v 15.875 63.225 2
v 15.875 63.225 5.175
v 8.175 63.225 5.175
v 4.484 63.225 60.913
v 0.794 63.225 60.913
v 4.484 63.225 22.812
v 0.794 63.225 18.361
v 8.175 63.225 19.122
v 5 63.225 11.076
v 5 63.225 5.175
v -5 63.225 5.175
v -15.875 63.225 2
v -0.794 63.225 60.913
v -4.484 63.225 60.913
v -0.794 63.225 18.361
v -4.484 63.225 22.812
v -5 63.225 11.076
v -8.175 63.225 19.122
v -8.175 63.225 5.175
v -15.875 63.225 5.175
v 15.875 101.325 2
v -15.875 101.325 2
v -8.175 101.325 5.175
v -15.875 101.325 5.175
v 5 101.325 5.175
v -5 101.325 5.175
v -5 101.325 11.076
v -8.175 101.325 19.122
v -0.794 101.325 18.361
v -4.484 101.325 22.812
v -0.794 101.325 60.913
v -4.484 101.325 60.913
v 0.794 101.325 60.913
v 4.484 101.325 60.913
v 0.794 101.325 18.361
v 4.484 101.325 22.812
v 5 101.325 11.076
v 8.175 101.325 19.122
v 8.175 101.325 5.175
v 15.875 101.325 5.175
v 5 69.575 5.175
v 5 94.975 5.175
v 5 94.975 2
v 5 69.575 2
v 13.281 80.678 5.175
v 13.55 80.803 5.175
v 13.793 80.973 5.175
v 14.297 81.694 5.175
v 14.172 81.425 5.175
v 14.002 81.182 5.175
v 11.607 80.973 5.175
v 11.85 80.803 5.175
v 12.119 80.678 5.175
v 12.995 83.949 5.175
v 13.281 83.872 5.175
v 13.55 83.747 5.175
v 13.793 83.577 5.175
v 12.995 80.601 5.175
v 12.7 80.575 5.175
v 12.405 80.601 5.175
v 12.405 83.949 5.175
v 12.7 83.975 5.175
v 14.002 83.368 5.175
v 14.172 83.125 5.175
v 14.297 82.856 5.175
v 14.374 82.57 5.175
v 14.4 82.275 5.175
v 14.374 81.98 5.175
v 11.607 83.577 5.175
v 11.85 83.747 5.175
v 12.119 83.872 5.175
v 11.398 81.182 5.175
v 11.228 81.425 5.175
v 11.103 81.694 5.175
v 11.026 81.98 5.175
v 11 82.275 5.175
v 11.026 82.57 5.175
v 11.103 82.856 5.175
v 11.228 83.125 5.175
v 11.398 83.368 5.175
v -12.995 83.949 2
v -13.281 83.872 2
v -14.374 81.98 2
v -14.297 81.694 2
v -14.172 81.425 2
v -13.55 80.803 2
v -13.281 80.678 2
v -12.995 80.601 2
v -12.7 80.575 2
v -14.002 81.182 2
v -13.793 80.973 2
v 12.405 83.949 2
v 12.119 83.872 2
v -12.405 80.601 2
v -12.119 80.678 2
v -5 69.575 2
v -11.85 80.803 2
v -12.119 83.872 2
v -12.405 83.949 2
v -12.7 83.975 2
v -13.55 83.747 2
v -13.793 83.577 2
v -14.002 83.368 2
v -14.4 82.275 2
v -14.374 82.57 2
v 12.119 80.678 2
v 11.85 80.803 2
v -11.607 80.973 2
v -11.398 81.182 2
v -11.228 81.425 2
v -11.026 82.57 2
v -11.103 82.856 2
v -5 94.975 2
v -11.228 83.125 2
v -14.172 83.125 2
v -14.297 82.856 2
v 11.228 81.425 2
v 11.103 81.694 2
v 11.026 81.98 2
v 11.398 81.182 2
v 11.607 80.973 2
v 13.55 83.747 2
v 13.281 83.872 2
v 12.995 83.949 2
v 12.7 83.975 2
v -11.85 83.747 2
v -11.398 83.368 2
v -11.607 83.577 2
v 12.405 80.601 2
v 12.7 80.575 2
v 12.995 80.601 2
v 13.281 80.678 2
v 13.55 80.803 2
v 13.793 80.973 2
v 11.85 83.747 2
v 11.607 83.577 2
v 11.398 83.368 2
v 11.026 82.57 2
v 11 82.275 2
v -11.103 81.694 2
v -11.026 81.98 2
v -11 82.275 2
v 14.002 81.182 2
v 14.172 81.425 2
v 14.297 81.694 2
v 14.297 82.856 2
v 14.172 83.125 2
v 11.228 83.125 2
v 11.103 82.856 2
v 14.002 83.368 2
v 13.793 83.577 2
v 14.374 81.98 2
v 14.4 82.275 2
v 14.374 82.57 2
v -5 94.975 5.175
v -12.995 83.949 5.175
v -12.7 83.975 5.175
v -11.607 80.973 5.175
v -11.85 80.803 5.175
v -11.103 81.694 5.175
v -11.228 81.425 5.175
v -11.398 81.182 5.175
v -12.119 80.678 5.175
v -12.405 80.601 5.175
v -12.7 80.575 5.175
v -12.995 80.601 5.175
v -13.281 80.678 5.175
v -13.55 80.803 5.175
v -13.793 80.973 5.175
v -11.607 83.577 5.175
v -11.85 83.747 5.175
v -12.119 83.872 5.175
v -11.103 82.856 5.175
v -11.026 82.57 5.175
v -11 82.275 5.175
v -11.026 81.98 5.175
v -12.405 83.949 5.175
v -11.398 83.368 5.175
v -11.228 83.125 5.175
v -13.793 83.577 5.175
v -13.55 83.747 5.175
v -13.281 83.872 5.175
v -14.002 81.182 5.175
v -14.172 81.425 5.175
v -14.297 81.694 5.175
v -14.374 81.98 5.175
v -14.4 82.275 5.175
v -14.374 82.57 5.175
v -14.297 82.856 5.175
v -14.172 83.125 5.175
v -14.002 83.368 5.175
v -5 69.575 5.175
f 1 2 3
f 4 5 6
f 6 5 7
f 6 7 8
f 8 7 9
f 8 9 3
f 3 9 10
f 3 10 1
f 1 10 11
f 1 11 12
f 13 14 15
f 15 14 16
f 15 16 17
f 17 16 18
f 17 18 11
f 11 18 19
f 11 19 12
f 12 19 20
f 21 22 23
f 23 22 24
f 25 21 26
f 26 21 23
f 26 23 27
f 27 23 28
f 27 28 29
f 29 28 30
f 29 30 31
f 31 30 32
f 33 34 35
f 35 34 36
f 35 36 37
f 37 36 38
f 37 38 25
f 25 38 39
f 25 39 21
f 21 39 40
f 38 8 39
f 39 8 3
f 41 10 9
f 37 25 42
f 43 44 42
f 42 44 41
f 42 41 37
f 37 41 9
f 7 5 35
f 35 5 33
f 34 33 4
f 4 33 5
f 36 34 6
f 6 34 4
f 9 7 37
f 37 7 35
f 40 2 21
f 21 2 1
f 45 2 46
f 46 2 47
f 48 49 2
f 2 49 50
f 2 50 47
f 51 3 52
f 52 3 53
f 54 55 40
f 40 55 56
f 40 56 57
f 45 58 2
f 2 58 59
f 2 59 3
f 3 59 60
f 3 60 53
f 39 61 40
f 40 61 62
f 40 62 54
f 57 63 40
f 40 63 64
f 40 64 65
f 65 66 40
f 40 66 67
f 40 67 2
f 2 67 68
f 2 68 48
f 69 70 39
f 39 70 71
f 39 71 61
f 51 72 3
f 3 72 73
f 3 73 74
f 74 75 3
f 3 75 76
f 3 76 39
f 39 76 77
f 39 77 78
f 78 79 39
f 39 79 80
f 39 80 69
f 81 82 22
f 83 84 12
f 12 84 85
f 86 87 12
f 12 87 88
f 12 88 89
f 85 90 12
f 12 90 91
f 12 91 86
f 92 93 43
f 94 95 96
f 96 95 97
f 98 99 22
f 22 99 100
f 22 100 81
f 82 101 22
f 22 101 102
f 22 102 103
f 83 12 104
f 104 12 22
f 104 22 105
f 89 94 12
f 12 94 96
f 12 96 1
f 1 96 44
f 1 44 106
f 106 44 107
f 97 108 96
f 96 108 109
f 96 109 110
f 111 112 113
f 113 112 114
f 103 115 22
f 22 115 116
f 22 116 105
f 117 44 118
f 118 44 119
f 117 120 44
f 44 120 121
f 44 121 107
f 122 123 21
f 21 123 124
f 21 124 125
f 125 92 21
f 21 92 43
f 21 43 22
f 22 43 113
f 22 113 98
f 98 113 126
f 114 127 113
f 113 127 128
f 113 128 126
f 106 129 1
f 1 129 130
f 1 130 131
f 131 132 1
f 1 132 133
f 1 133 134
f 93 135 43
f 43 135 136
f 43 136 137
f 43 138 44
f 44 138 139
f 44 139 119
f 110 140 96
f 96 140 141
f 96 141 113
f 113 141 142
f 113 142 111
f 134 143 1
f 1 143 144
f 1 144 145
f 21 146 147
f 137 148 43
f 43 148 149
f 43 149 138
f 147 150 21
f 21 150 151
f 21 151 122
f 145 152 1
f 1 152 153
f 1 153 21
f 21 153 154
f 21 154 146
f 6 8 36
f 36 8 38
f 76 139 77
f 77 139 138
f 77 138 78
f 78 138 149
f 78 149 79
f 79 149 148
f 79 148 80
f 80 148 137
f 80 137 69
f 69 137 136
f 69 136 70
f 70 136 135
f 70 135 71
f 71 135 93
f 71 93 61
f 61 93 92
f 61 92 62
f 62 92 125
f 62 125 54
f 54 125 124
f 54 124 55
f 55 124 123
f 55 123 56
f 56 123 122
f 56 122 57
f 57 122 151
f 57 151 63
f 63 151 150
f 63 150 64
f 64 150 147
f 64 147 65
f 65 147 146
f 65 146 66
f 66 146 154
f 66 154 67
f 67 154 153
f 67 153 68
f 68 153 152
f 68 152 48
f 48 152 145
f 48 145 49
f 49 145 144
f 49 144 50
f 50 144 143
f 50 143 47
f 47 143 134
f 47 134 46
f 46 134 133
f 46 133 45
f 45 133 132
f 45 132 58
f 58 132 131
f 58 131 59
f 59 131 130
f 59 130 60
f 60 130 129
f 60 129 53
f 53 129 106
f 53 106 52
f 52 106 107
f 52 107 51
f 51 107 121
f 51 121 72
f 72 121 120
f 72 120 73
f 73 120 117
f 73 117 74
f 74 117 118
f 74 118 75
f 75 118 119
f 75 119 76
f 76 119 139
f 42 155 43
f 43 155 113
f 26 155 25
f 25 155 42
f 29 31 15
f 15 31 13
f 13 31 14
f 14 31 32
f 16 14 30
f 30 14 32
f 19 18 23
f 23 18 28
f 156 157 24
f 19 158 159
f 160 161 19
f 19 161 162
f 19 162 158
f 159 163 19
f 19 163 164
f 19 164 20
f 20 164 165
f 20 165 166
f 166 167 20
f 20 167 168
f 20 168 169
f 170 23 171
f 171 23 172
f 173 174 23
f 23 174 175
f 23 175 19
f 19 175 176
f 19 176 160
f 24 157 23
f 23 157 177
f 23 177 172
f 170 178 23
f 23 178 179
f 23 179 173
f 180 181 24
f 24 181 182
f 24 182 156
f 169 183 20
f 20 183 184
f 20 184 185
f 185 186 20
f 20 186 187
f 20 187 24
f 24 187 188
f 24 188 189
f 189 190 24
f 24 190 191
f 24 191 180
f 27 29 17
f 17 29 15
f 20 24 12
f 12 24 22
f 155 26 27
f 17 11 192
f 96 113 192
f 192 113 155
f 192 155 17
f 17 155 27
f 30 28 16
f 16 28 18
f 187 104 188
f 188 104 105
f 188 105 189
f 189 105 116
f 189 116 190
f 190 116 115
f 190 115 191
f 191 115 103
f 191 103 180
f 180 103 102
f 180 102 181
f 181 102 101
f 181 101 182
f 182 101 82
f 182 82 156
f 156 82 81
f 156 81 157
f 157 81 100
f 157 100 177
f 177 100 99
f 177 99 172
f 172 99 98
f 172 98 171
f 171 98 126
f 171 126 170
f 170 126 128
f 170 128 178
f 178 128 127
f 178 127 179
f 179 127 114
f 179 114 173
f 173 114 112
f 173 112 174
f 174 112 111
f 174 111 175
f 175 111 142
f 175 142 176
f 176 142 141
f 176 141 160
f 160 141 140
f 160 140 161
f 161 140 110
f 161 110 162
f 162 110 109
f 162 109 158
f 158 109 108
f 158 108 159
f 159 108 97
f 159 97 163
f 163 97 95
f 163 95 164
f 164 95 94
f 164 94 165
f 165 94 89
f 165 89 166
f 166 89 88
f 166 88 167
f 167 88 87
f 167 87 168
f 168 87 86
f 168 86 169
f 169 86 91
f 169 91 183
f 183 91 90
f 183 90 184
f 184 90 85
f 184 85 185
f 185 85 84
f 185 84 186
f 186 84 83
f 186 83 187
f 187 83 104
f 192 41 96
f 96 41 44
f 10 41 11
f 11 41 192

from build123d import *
from build123d.topology import SkipClean

# Parameters (mm, degrees)
SKETCH1_W                     = 10
SKETCH1_H                     = 170.55
SKETCH1_R                     = 2.5
BOSS_EXTRUDE1_DEPTH           = 2
SKETCH2_W                     = 10
SKETCH2_H                     = 170.55
SKETCH2_R                     = 2.95
BOSS_EXTRUDE2_DEPTH           = 1
SKETCH3_W                     = 69.85
SKETCH3_H                     = 10.16
SKETCH3_R                     = 1.86055
BOSS_EXTRUDE3_DEPTH           = 2.5
FILLET1_START                 = -1
FILLET1_DEPTH                 = 10.16
FILLET1_START_2               = -17.7000001
FILLET1_2_DEPTH               = 35.4000001
FILLET1_START_3               = -5
FILLET1_3_DEPTH               = 10
SKETCH4_W                     = 10
SKETCH4_H                     = 13.05
BOSS_EXTRUDE4_DEPTH           = 3
SKETCH4_3_W                   = 3.175
SKETCH4_3_H                   = 38.1
BOSS_EXTRUDE5_DEPTH           = 11.1125
SKETCH5_W                     = 7.38125
SKETCH5_H                     = 38.1
BOSS_EXTRUDE6_DEPTH           = 50.8
SKETCH6_W                     = 3.690625
SKETCH6_H                     = 38.1
CUT_EXTRUDE1_DEPTH            = 44.45
CHAMFER1_SIZE                 = 4.7625
CHAMFER1_SIZE_2               = 8.248891971
SKETCH7_W                     = 69.85
SKETCH7_H                     = 10.16
CUT_EXTRUDE2_DEPTH            = 145.5
SKETCH8_W                     = 31.75
SKETCH8_H                     = 38.1
BOSS_EXTRUDE7_DEPTH           = 3.175
SKETCH9_W                     = 10
SKETCH9_H                     = 3.175
SKETCH9_W_2                   = 16.35
SKETCH9_H_2                   = 3
CUT_EXTRUDE3_DEPTH            = 74.579605063
CHAMFER2_SIZE                 = 6.35
CHAMFER3_SIZE                 = 6.35
SKETCH11_W                    = 1.7
SKETCH11_H                    = 58.9125
M3_CLEARANCE_HOLE1_AT_2_COUNT = 2
M3_CLEARANCE_HOLE1_AT_2_PITCH = 25.4
SKETCH13_W                    = 10
SKETCH13_H                    = 6.35
BOSS_EXTRUDE8_DEPTH           = 3.175


with BuildPart() as part:
    # Sketch1 → Boss-Extrude1 (new body)
    with BuildSketch(Plane.XY):
        with Locations((0, 3)):
            Rectangle(SKETCH1_W, SKETCH1_H)
        with Locations((0, 82.275)):
            Circle(SKETCH1_R, mode=Mode.SUBTRACT)
    extrude(amount=BOSS_EXTRUDE1_DEPTH)

    # Sketch2 → Boss-Extrude2 (add)
    with BuildSketch(Plane(origin=(0, 0, 0), x_dir=(-1, 0, 0), z_dir=(0, 0, -1))):
        with Locations((0, 3)):
            Rectangle(SKETCH2_W, SKETCH2_H)
        with Locations((0, 82.275)):
            Circle(SKETCH2_R, mode=Mode.SUBTRACT)
    extrude(amount=BOSS_EXTRUDE2_DEPTH)

    # Sketch3 → Boss-Extrude3 (add)
    with BuildSketch(Plane.XZ.offset(82.275)):
        with Locations((0, 4.08)):
            Rectangle(SKETCH3_W, SKETCH3_H)
        with Locations(Location((28.575, 4.08, 0), (0, 0, 270))):
            Circle(SKETCH3_R, mode=Mode.SUBTRACT)
        with Locations(Location((-28.575, 4.08, 0), (0, 0, 270))):
            Circle(SKETCH3_R, mode=Mode.SUBTRACT)
    extrude(amount=-BOSS_EXTRUDE3_DEPTH)

    # Fillet1: read off the stored shape, not the designer's step
    # Fillet1 outline → Fillet1 (add)
    with BuildSketch(Plane.XY.offset(FILLET1_START)):
        with BuildLine():
            Line((5, -79.775), (17.7, -79.775))
            ThreePointArc((17.7, -79.775), (8.719743879, -76.055256121), (5, -67.075))
            Line((5, -67.075), (5, -79.775))
        make_face()
        with BuildLine():
            Line((-17.7, -79.775), (-5, -79.775))
            Line((-5, -79.775), (-5, -67.075))
            ThreePointArc((-5, -67.075), (-8.719743879, -76.055256121), (-17.7, -79.775))
        make_face()
    extrude(amount=FILLET1_DEPTH)

    # Fillet1 2 outline → Fillet1 2 (cut)
    with BuildSketch(Plane.YZ.offset(FILLET1_START_2)):
        with BuildLine():
            Line((-66, 9.16), (-79.775009155, 9.160018885))
            ThreePointArc((-79.775009155, 9.160018885), (-75.089891257, 3.937849653), (-68.347034302, 2))
            Line((-68.347034302, 2), (-66, 2))
            Line((-66, 2), (-66, 9.16))
        make_face()
    extrude(amount=FILLET1_2_DEPTH, mode=Mode.SUBTRACT)

    # Fillet1 3 outline → Fillet1 3 (add)
    with BuildSketch(Plane.YZ.offset(FILLET1_START_3)):
        with BuildLine():
            ThreePointArc((-68.347034302, 2), (-75.089891257, 3.937849653), (-79.775009155, 9.160018885))
            Line((-79.775009155, 9.160018885), (-79.775, 0))
            Line((-79.775, 0), (-66, 0))
            Line((-66, 0), (-66, 2))
            Line((-66, 2), (-68.347034302, 2))
        make_face()
    extrude(amount=FILLET1_3_DEPTH)

    # Sketch4 → Boss-Extrude4 (add)
    with SkipClean():  # the faces are left unmerged after this step: merging them gives an invalid solid
        with BuildSketch(Plane(origin=(0, 0, -1), x_dir=(-1, 0, 0), z_dir=(0, 0, -1))):
            Polygon((8.175, 63.225), (8.175, 101.325), (5, 101.325), (5, 88.275), (5, 63.225), align=None)
            with Locations((0, 94.8)):
                Rectangle(SKETCH4_W, SKETCH4_H)
            Polygon((-5, 88.275), (-5, 101.325), (-8.175, 101.325), (-8.175, 63.225), (-5, 63.225), align=None)
        extrude(amount=-BOSS_EXTRUDE4_DEPTH)

    # Sketch4<3> → Boss-Extrude5 (add)
    with SkipClean():  # the faces are left unmerged after this step: merging them gives an invalid solid
        with BuildSketch(Plane(origin=(0, 0, -1), x_dir=(-1, 0, 0), z_dir=(0, 0, -1))):
            with Locations((6.5875, 82.275)):
                Rectangle(SKETCH4_3_W, SKETCH4_3_H)
            with Locations((-6.5875, 82.275)):
                Rectangle(SKETCH4_3_W, SKETCH4_3_H)
        extrude(amount=-BOSS_EXTRUDE5_DEPTH)

    # Sketch5 → Boss-Extrude6 (add)
    with SkipClean():  # the faces are left unmerged after this step: merging them gives an invalid solid
        with BuildSketch(Plane.XY.offset(10.1125)):
            with Locations((-4.484375, 82.275)):
                Rectangle(SKETCH5_W, SKETCH5_H)
            with Locations((4.484375, 82.275)):
                Rectangle(SKETCH5_W, SKETCH5_H)
        extrude(amount=BOSS_EXTRUDE6_DEPTH)

    # Sketch6 → Cut-Extrude1 (cut)
    with SkipClean():  # the faces are left unmerged after this step: merging them gives an invalid solid
        with BuildSketch(Plane.XY.offset(60.9125)):
            with Locations((-6.3296875, 82.275)):
                Rectangle(SKETCH6_W, SKETCH6_H)
            with Locations((6.3296875, 82.275)):
                Rectangle(SKETCH6_W, SKETCH6_H)
        extrude(amount=-CUT_EXTRUDE1_DEPTH, mode=Mode.SUBTRACT)

    # Chamfer1
    # the kernel refuses this chamfer: 8.248891971, 4.7625 mm, written as the material it takes off along each edge
    with BuildSketch(Plane(origin=(-0.79375, 122.66559091, 10.1125), x_dir=(-1, 0, 0), z_dir=(0, -1, 0))) as chamfer1_piece_1_section:
        Polygon((CHAMFER1_SIZE, 0), (0, -CHAMFER1_SIZE_2), (0, 0), align=None)
    chamfer1_piece_1 = extrude(amount=80.78118182, mode=Mode.PRIVATE)
    chamfer1_piece_1 = split(chamfer1_piece_1, bisect_by=Plane(origin=(-5, 122.66559091, 10.1125), z_dir=(1, 0, 0)), keep=Keep.TOP, mode=Mode.PRIVATE)
    add(chamfer1_piece_1, mode=Mode.SUBTRACT)
    with BuildSketch(Plane(origin=(0.79375, 122.66559091, 10.1125), x_dir=(1, 0, 0), z_dir=(0, -1, 0))) as chamfer1_piece_2_section:
        Polygon((CHAMFER1_SIZE, 0), (0, CHAMFER1_SIZE_2), (0, 0), align=None)
    chamfer1_piece_2 = extrude(amount=80.78118182, mode=Mode.PRIVATE)
    chamfer1_piece_2 = split(chamfer1_piece_2, bisect_by=Plane(origin=(5, 122.66559091, 10.1125), z_dir=(-1, 0, 0)), keep=Keep.TOP, mode=Mode.PRIVATE)
    add(chamfer1_piece_2, mode=Mode.SUBTRACT)

    # Sketch7 → Cut-Extrude2 (cut)
    with BuildSketch(Plane.XZ.offset(82.275)):
        with Locations((0, 4.08)):
            Rectangle(SKETCH7_W, SKETCH7_H)
    extrude(amount=-CUT_EXTRUDE2_DEPTH, mode=Mode.SUBTRACT)


with BuildPart() as cut_extrude2_kept_piece:
    # of the separate pieces the step leaves, the one the design keeps (cut_extrude2_pieces_kept)
    add(part.part.solids().sort_by_distance((-8.175, 63.225, -1))[0])

    # Sketch8 → Boss-Extrude7 (add)
    with BuildSketch(Plane(origin=(0, 0, 2), x_dir=(-1, 0, 0), z_dir=(0, 0, -1))):
        with Locations((0, 82.275)):
            Rectangle(SKETCH8_W, SKETCH8_H)
    extrude(amount=-BOSS_EXTRUDE7_DEPTH)

    # Sketch9 → Cut-Extrude3 (cut, through all)
    with BuildSketch(Plane(origin=(0, 101.325, 0), x_dir=(1, 0, 0), z_dir=(0, 1, 0))):
        with Locations((0, -3.5875)):
            Rectangle(SKETCH9_W, SKETCH9_H)
        with Locations((0, -0.5)):
            Rectangle(SKETCH9_W_2, SKETCH9_H_2)
    extrude(amount=-CUT_EXTRUDE3_DEPTH, mode=Mode.SUBTRACT)


with BuildPart() as cut_extrude3_piece_1:
    # of the separate pieces the step leaves, piece 1, a body of its own (cut_extrude3_pieces)
    add(cut_extrude2_kept_piece.part.solids().sort_by_distance((-15.875, 101.325, 2))[0])

    # Chamfer3
    # the kernel refuses this chamfer: 6.35 mm, written as the material it adds along each edge
    with BuildSketch(Plane(origin=(-4.484375, 101.325, 16.4625), x_dir=(-1, 0, 0), z_dir=(0, -1, 0))) as chamfer3_piece_1_section:
        Polygon((CHAMFER3_SIZE, 0), (0, -CHAMFER3_SIZE), (0, 0), align=None)
    chamfer3_piece_1 = extrude(amount=38.1, mode=Mode.PRIVATE)
    chamfer3_piece_1 = split(chamfer3_piece_1, bisect_by=Plane(origin=(-8.175, 101.325, 16.4625), z_dir=(1, 0, 0)), keep=Keep.TOP, mode=Mode.PRIVATE)
    add(chamfer3_piece_1)

    # Sketch11 → M3 Clearance Hole1 (revolve, cut)
    with BuildSketch(Plane(origin=(-12.7, 82.275, 2), x_dir=(0, 1, 0), z_dir=(1, 0, 0))):
        with Locations((0.85, 29.45625)):
            Rectangle(SKETCH11_W, SKETCH11_H)
    m3_clearance_hole1 = revolve(axis=Axis((-12.7, 82.275, -4.35), (0, 0, 1)), mode=Mode.SUBTRACT)



with BuildPart() as cut_extrude3_piece_2:
    # of the separate pieces the step leaves, piece 2, a body of its own (cut_extrude3_pieces)
    add(cut_extrude2_kept_piece.part.solids().sort_by_distance((15.875, 101.325, 2))[0])

    # Chamfer2
    # the kernel refuses this chamfer: 6.35 mm, written as the material it adds along each edge
    with BuildSketch(Plane(origin=(4.484375, 101.325, 16.4625), x_dir=(1, 0, 0), z_dir=(0, -1, 0))) as chamfer2_piece_1_section:
        Polygon((CHAMFER2_SIZE, 0), (0, CHAMFER2_SIZE), (0, 0), align=None)
    chamfer2_piece_1 = extrude(amount=38.1, mode=Mode.PRIVATE)
    chamfer2_piece_1 = split(chamfer2_piece_1, bisect_by=Plane(origin=(8.175, 101.325, 16.4625), z_dir=(-1, 0, 0)), keep=Keep.TOP, mode=Mode.PRIVATE)
    add(chamfer2_piece_1)

    # M3 Clearance Hole1 at 2: M3 Clearance Hole1 ×2
    with Locations(*[(i * M3_CLEARANCE_HOLE1_AT_2_PITCH, 0, 0) for i in range(1, M3_CLEARANCE_HOLE1_AT_2_COUNT)]):
        add(m3_clearance_hole1, mode=Mode.SUBTRACT)


with BuildPart() as cut_extrude3_piece_1_1:
    add(cut_extrude3_piece_1.part)

    add(cut_extrude3_piece_2.part)  # Boss-Extrude8 merges Cut-Extrude3 piece 2
    # Sketch13 → Boss-Extrude8 (add)
    with BuildSketch(Plane(origin=(0, 0, 2), x_dir=(-1, 0, 0), z_dir=(0, 0, -1))):
        with Locations((0, 98.15)):
            Rectangle(SKETCH13_W, SKETCH13_H)
        with Locations((0, 66.4)):
            Rectangle(SKETCH13_W, SKETCH13_H)
    extrude(amount=-BOSS_EXTRUDE8_DEPTH)


solid = cut_extrude3_piece_1_1.part
